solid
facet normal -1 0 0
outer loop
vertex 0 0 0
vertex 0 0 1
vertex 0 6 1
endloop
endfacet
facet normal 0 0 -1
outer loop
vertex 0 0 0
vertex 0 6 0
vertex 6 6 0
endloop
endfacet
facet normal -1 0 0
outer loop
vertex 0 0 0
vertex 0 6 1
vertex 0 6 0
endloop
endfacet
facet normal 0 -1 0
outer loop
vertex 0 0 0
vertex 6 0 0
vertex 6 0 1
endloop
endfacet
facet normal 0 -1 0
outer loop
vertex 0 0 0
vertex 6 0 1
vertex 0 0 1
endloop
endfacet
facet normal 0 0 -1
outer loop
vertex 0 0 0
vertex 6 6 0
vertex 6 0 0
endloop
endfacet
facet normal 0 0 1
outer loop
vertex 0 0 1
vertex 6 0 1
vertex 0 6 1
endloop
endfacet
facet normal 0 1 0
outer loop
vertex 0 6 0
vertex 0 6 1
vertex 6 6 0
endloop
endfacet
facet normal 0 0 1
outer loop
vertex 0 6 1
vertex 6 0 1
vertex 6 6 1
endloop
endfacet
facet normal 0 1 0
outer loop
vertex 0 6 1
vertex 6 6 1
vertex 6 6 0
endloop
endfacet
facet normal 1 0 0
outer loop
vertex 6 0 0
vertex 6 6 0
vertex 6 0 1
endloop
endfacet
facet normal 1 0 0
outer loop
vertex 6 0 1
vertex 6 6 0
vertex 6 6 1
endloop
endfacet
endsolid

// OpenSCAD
/* Warning, this is a very basic generator with a lot of approximation 
input data : [VQFN, 5YC, 6x6x1.0mm, 48, , A, C04-25516A]
generated by com.zoubworld.electronics.cad.model3d.Basic
Date : Sun Feb 15 10:50:49 CET 2026
*/

//body
color("black")
translate([0,0,0])
cube([6.0,6.0,1.0], center=false);
